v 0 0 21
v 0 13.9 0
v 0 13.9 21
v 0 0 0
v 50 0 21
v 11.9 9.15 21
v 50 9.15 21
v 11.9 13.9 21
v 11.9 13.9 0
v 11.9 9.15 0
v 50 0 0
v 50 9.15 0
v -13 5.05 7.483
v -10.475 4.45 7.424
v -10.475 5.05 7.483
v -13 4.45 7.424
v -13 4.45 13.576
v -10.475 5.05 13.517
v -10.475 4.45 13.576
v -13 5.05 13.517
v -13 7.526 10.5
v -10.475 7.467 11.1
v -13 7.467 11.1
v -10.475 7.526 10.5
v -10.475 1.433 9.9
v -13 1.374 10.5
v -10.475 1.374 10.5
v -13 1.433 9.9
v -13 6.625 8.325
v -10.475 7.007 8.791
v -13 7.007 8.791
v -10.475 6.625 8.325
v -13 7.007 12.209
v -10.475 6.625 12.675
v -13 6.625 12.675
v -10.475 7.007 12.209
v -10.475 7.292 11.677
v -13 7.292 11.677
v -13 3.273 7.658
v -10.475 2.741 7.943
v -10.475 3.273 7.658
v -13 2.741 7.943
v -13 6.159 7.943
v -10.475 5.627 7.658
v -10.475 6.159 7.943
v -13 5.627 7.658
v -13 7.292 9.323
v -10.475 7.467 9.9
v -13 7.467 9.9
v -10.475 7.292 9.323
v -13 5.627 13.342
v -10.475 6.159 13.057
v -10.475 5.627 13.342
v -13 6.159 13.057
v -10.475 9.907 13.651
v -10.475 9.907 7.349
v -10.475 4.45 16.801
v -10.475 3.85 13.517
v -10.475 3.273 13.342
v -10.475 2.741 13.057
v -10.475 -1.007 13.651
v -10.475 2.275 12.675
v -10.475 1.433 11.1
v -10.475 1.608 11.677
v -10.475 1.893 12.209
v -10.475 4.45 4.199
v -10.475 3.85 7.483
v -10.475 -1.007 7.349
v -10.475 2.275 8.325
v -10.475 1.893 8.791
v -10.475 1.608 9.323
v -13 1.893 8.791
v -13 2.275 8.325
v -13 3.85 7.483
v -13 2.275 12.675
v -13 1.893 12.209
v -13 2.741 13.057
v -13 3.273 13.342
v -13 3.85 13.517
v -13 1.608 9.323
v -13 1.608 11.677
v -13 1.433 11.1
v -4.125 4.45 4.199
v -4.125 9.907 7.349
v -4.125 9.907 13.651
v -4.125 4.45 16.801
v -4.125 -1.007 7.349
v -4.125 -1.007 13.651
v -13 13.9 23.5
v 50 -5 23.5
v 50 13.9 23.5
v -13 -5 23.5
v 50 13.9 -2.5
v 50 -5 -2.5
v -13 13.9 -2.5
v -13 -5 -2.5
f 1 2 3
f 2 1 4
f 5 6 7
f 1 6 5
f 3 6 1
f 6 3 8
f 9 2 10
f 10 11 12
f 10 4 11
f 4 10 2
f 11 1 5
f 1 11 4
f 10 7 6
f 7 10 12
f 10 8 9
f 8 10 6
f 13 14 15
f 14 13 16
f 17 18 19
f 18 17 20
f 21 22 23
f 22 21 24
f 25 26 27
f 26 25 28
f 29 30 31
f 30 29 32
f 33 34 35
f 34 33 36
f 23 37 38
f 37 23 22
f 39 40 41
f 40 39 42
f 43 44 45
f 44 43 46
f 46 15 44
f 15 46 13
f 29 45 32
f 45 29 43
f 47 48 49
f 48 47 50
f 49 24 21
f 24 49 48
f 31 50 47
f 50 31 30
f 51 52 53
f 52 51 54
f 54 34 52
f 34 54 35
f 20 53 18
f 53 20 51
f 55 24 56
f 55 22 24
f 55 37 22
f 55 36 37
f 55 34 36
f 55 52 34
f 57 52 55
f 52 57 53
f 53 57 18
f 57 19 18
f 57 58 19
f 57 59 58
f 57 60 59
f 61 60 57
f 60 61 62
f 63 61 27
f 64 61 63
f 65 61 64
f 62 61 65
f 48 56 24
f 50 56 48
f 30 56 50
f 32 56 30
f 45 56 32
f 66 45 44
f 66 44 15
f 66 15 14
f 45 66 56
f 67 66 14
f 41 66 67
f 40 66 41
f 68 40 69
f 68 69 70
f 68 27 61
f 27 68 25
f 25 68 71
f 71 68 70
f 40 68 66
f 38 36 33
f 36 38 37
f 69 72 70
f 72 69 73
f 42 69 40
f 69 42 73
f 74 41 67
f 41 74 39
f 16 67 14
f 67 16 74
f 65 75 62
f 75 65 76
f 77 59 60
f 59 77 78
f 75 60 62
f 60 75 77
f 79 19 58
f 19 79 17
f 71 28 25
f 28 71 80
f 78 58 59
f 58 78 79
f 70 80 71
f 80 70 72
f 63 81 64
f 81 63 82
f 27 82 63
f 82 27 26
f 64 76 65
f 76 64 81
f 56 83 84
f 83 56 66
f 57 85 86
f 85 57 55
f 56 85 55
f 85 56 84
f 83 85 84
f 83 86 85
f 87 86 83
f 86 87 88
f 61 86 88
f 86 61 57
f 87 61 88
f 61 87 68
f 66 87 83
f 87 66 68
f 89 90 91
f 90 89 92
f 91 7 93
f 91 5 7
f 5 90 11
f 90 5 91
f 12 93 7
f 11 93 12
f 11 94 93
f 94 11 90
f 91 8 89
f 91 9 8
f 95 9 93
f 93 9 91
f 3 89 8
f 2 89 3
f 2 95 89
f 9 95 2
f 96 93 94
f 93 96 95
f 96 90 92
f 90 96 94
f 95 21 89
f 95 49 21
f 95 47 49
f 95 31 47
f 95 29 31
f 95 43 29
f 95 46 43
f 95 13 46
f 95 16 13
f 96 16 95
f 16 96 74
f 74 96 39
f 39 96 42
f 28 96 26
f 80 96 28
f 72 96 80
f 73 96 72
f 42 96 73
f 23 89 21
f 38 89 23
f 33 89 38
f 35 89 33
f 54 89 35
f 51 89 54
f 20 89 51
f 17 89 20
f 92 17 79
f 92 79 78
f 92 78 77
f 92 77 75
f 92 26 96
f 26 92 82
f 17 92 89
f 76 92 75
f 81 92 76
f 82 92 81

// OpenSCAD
//V01 Wings/Tabs to side
//V02 Wings/Tans to other 90degree side
//V03 cutout for 3/8 nut in bottom, thicker bottom

use <nuts_and_bolts_v1.95.scad>;

shell_thick = 5;
wing_thick = 8;
wing_length = 20;

difference(){
    union(){
        hdmi_blank();
        wings_three();
    }
    hdmi_bore();
    bolt_cutout();
    //isolate bolt cutout
    //translate([0,-10,-10])
    //cube([80,80,80]);
}


module bolt_cutout(){
  rotate([0,90,0])
translate([0,13.9/2-(shell_thick/2),0])
translate([-21/2,0,-20])
//for a 3/8 bolt cutout
//hex_bolt (lenght, thread_d, head_h, head_d, tolerance, quality, thread, pitch);
hex_bolt (3/8, 2/8, 2/8, 7/16, 1/128, 64, 0, "imperial");
}  
module wings_one(){
    color("green")
    translate([-shell_thick-wing_thick,
            -shell_thick,
            -wing_length/2-(shell_thick/2)])
    {
        //10mm on each side of the 21 height...
    cube([3,13.9+shell_thick,21+shell_thick+wing_length]);
    } 
}

module wings_two(){
    color("green")
    translate([-shell_thick-wing_thick,
            -shell_thick-(wing_length/2),
            -(shell_thick/2)])
    {
        //10mm on each side of the 21 height...
    cube([3,13.9+shell_thick+wing_length,21+shell_thick]);
    } 
}

module wings_three(){
    color("green")
    translate([-wing_thick-shell_thick,
            -shell_thick,
            -(shell_thick/2)])
    {
        //10mm on each side of the 21 height...
    cube([wing_thick,13.9+shell_thick,21+shell_thick]);
    } 
}
module hdmi_blank()
  {
    color("blue")    
    translate([-shell_thick,-shell_thick,-shell_thick/2]){
    cube([50+shell_thick,13.9+shell_thick,21+shell_thick],center=false); //tall part
    }
}

module hdmi_bore() 
    {
    color("yellow")
    cube([52,9.15,21],center=false); //tall part
    //50+2 for view
        color("red")
    cube([11.9,15.9,21],center=false);  //stub
    //13.9 + 2 for view
        }
